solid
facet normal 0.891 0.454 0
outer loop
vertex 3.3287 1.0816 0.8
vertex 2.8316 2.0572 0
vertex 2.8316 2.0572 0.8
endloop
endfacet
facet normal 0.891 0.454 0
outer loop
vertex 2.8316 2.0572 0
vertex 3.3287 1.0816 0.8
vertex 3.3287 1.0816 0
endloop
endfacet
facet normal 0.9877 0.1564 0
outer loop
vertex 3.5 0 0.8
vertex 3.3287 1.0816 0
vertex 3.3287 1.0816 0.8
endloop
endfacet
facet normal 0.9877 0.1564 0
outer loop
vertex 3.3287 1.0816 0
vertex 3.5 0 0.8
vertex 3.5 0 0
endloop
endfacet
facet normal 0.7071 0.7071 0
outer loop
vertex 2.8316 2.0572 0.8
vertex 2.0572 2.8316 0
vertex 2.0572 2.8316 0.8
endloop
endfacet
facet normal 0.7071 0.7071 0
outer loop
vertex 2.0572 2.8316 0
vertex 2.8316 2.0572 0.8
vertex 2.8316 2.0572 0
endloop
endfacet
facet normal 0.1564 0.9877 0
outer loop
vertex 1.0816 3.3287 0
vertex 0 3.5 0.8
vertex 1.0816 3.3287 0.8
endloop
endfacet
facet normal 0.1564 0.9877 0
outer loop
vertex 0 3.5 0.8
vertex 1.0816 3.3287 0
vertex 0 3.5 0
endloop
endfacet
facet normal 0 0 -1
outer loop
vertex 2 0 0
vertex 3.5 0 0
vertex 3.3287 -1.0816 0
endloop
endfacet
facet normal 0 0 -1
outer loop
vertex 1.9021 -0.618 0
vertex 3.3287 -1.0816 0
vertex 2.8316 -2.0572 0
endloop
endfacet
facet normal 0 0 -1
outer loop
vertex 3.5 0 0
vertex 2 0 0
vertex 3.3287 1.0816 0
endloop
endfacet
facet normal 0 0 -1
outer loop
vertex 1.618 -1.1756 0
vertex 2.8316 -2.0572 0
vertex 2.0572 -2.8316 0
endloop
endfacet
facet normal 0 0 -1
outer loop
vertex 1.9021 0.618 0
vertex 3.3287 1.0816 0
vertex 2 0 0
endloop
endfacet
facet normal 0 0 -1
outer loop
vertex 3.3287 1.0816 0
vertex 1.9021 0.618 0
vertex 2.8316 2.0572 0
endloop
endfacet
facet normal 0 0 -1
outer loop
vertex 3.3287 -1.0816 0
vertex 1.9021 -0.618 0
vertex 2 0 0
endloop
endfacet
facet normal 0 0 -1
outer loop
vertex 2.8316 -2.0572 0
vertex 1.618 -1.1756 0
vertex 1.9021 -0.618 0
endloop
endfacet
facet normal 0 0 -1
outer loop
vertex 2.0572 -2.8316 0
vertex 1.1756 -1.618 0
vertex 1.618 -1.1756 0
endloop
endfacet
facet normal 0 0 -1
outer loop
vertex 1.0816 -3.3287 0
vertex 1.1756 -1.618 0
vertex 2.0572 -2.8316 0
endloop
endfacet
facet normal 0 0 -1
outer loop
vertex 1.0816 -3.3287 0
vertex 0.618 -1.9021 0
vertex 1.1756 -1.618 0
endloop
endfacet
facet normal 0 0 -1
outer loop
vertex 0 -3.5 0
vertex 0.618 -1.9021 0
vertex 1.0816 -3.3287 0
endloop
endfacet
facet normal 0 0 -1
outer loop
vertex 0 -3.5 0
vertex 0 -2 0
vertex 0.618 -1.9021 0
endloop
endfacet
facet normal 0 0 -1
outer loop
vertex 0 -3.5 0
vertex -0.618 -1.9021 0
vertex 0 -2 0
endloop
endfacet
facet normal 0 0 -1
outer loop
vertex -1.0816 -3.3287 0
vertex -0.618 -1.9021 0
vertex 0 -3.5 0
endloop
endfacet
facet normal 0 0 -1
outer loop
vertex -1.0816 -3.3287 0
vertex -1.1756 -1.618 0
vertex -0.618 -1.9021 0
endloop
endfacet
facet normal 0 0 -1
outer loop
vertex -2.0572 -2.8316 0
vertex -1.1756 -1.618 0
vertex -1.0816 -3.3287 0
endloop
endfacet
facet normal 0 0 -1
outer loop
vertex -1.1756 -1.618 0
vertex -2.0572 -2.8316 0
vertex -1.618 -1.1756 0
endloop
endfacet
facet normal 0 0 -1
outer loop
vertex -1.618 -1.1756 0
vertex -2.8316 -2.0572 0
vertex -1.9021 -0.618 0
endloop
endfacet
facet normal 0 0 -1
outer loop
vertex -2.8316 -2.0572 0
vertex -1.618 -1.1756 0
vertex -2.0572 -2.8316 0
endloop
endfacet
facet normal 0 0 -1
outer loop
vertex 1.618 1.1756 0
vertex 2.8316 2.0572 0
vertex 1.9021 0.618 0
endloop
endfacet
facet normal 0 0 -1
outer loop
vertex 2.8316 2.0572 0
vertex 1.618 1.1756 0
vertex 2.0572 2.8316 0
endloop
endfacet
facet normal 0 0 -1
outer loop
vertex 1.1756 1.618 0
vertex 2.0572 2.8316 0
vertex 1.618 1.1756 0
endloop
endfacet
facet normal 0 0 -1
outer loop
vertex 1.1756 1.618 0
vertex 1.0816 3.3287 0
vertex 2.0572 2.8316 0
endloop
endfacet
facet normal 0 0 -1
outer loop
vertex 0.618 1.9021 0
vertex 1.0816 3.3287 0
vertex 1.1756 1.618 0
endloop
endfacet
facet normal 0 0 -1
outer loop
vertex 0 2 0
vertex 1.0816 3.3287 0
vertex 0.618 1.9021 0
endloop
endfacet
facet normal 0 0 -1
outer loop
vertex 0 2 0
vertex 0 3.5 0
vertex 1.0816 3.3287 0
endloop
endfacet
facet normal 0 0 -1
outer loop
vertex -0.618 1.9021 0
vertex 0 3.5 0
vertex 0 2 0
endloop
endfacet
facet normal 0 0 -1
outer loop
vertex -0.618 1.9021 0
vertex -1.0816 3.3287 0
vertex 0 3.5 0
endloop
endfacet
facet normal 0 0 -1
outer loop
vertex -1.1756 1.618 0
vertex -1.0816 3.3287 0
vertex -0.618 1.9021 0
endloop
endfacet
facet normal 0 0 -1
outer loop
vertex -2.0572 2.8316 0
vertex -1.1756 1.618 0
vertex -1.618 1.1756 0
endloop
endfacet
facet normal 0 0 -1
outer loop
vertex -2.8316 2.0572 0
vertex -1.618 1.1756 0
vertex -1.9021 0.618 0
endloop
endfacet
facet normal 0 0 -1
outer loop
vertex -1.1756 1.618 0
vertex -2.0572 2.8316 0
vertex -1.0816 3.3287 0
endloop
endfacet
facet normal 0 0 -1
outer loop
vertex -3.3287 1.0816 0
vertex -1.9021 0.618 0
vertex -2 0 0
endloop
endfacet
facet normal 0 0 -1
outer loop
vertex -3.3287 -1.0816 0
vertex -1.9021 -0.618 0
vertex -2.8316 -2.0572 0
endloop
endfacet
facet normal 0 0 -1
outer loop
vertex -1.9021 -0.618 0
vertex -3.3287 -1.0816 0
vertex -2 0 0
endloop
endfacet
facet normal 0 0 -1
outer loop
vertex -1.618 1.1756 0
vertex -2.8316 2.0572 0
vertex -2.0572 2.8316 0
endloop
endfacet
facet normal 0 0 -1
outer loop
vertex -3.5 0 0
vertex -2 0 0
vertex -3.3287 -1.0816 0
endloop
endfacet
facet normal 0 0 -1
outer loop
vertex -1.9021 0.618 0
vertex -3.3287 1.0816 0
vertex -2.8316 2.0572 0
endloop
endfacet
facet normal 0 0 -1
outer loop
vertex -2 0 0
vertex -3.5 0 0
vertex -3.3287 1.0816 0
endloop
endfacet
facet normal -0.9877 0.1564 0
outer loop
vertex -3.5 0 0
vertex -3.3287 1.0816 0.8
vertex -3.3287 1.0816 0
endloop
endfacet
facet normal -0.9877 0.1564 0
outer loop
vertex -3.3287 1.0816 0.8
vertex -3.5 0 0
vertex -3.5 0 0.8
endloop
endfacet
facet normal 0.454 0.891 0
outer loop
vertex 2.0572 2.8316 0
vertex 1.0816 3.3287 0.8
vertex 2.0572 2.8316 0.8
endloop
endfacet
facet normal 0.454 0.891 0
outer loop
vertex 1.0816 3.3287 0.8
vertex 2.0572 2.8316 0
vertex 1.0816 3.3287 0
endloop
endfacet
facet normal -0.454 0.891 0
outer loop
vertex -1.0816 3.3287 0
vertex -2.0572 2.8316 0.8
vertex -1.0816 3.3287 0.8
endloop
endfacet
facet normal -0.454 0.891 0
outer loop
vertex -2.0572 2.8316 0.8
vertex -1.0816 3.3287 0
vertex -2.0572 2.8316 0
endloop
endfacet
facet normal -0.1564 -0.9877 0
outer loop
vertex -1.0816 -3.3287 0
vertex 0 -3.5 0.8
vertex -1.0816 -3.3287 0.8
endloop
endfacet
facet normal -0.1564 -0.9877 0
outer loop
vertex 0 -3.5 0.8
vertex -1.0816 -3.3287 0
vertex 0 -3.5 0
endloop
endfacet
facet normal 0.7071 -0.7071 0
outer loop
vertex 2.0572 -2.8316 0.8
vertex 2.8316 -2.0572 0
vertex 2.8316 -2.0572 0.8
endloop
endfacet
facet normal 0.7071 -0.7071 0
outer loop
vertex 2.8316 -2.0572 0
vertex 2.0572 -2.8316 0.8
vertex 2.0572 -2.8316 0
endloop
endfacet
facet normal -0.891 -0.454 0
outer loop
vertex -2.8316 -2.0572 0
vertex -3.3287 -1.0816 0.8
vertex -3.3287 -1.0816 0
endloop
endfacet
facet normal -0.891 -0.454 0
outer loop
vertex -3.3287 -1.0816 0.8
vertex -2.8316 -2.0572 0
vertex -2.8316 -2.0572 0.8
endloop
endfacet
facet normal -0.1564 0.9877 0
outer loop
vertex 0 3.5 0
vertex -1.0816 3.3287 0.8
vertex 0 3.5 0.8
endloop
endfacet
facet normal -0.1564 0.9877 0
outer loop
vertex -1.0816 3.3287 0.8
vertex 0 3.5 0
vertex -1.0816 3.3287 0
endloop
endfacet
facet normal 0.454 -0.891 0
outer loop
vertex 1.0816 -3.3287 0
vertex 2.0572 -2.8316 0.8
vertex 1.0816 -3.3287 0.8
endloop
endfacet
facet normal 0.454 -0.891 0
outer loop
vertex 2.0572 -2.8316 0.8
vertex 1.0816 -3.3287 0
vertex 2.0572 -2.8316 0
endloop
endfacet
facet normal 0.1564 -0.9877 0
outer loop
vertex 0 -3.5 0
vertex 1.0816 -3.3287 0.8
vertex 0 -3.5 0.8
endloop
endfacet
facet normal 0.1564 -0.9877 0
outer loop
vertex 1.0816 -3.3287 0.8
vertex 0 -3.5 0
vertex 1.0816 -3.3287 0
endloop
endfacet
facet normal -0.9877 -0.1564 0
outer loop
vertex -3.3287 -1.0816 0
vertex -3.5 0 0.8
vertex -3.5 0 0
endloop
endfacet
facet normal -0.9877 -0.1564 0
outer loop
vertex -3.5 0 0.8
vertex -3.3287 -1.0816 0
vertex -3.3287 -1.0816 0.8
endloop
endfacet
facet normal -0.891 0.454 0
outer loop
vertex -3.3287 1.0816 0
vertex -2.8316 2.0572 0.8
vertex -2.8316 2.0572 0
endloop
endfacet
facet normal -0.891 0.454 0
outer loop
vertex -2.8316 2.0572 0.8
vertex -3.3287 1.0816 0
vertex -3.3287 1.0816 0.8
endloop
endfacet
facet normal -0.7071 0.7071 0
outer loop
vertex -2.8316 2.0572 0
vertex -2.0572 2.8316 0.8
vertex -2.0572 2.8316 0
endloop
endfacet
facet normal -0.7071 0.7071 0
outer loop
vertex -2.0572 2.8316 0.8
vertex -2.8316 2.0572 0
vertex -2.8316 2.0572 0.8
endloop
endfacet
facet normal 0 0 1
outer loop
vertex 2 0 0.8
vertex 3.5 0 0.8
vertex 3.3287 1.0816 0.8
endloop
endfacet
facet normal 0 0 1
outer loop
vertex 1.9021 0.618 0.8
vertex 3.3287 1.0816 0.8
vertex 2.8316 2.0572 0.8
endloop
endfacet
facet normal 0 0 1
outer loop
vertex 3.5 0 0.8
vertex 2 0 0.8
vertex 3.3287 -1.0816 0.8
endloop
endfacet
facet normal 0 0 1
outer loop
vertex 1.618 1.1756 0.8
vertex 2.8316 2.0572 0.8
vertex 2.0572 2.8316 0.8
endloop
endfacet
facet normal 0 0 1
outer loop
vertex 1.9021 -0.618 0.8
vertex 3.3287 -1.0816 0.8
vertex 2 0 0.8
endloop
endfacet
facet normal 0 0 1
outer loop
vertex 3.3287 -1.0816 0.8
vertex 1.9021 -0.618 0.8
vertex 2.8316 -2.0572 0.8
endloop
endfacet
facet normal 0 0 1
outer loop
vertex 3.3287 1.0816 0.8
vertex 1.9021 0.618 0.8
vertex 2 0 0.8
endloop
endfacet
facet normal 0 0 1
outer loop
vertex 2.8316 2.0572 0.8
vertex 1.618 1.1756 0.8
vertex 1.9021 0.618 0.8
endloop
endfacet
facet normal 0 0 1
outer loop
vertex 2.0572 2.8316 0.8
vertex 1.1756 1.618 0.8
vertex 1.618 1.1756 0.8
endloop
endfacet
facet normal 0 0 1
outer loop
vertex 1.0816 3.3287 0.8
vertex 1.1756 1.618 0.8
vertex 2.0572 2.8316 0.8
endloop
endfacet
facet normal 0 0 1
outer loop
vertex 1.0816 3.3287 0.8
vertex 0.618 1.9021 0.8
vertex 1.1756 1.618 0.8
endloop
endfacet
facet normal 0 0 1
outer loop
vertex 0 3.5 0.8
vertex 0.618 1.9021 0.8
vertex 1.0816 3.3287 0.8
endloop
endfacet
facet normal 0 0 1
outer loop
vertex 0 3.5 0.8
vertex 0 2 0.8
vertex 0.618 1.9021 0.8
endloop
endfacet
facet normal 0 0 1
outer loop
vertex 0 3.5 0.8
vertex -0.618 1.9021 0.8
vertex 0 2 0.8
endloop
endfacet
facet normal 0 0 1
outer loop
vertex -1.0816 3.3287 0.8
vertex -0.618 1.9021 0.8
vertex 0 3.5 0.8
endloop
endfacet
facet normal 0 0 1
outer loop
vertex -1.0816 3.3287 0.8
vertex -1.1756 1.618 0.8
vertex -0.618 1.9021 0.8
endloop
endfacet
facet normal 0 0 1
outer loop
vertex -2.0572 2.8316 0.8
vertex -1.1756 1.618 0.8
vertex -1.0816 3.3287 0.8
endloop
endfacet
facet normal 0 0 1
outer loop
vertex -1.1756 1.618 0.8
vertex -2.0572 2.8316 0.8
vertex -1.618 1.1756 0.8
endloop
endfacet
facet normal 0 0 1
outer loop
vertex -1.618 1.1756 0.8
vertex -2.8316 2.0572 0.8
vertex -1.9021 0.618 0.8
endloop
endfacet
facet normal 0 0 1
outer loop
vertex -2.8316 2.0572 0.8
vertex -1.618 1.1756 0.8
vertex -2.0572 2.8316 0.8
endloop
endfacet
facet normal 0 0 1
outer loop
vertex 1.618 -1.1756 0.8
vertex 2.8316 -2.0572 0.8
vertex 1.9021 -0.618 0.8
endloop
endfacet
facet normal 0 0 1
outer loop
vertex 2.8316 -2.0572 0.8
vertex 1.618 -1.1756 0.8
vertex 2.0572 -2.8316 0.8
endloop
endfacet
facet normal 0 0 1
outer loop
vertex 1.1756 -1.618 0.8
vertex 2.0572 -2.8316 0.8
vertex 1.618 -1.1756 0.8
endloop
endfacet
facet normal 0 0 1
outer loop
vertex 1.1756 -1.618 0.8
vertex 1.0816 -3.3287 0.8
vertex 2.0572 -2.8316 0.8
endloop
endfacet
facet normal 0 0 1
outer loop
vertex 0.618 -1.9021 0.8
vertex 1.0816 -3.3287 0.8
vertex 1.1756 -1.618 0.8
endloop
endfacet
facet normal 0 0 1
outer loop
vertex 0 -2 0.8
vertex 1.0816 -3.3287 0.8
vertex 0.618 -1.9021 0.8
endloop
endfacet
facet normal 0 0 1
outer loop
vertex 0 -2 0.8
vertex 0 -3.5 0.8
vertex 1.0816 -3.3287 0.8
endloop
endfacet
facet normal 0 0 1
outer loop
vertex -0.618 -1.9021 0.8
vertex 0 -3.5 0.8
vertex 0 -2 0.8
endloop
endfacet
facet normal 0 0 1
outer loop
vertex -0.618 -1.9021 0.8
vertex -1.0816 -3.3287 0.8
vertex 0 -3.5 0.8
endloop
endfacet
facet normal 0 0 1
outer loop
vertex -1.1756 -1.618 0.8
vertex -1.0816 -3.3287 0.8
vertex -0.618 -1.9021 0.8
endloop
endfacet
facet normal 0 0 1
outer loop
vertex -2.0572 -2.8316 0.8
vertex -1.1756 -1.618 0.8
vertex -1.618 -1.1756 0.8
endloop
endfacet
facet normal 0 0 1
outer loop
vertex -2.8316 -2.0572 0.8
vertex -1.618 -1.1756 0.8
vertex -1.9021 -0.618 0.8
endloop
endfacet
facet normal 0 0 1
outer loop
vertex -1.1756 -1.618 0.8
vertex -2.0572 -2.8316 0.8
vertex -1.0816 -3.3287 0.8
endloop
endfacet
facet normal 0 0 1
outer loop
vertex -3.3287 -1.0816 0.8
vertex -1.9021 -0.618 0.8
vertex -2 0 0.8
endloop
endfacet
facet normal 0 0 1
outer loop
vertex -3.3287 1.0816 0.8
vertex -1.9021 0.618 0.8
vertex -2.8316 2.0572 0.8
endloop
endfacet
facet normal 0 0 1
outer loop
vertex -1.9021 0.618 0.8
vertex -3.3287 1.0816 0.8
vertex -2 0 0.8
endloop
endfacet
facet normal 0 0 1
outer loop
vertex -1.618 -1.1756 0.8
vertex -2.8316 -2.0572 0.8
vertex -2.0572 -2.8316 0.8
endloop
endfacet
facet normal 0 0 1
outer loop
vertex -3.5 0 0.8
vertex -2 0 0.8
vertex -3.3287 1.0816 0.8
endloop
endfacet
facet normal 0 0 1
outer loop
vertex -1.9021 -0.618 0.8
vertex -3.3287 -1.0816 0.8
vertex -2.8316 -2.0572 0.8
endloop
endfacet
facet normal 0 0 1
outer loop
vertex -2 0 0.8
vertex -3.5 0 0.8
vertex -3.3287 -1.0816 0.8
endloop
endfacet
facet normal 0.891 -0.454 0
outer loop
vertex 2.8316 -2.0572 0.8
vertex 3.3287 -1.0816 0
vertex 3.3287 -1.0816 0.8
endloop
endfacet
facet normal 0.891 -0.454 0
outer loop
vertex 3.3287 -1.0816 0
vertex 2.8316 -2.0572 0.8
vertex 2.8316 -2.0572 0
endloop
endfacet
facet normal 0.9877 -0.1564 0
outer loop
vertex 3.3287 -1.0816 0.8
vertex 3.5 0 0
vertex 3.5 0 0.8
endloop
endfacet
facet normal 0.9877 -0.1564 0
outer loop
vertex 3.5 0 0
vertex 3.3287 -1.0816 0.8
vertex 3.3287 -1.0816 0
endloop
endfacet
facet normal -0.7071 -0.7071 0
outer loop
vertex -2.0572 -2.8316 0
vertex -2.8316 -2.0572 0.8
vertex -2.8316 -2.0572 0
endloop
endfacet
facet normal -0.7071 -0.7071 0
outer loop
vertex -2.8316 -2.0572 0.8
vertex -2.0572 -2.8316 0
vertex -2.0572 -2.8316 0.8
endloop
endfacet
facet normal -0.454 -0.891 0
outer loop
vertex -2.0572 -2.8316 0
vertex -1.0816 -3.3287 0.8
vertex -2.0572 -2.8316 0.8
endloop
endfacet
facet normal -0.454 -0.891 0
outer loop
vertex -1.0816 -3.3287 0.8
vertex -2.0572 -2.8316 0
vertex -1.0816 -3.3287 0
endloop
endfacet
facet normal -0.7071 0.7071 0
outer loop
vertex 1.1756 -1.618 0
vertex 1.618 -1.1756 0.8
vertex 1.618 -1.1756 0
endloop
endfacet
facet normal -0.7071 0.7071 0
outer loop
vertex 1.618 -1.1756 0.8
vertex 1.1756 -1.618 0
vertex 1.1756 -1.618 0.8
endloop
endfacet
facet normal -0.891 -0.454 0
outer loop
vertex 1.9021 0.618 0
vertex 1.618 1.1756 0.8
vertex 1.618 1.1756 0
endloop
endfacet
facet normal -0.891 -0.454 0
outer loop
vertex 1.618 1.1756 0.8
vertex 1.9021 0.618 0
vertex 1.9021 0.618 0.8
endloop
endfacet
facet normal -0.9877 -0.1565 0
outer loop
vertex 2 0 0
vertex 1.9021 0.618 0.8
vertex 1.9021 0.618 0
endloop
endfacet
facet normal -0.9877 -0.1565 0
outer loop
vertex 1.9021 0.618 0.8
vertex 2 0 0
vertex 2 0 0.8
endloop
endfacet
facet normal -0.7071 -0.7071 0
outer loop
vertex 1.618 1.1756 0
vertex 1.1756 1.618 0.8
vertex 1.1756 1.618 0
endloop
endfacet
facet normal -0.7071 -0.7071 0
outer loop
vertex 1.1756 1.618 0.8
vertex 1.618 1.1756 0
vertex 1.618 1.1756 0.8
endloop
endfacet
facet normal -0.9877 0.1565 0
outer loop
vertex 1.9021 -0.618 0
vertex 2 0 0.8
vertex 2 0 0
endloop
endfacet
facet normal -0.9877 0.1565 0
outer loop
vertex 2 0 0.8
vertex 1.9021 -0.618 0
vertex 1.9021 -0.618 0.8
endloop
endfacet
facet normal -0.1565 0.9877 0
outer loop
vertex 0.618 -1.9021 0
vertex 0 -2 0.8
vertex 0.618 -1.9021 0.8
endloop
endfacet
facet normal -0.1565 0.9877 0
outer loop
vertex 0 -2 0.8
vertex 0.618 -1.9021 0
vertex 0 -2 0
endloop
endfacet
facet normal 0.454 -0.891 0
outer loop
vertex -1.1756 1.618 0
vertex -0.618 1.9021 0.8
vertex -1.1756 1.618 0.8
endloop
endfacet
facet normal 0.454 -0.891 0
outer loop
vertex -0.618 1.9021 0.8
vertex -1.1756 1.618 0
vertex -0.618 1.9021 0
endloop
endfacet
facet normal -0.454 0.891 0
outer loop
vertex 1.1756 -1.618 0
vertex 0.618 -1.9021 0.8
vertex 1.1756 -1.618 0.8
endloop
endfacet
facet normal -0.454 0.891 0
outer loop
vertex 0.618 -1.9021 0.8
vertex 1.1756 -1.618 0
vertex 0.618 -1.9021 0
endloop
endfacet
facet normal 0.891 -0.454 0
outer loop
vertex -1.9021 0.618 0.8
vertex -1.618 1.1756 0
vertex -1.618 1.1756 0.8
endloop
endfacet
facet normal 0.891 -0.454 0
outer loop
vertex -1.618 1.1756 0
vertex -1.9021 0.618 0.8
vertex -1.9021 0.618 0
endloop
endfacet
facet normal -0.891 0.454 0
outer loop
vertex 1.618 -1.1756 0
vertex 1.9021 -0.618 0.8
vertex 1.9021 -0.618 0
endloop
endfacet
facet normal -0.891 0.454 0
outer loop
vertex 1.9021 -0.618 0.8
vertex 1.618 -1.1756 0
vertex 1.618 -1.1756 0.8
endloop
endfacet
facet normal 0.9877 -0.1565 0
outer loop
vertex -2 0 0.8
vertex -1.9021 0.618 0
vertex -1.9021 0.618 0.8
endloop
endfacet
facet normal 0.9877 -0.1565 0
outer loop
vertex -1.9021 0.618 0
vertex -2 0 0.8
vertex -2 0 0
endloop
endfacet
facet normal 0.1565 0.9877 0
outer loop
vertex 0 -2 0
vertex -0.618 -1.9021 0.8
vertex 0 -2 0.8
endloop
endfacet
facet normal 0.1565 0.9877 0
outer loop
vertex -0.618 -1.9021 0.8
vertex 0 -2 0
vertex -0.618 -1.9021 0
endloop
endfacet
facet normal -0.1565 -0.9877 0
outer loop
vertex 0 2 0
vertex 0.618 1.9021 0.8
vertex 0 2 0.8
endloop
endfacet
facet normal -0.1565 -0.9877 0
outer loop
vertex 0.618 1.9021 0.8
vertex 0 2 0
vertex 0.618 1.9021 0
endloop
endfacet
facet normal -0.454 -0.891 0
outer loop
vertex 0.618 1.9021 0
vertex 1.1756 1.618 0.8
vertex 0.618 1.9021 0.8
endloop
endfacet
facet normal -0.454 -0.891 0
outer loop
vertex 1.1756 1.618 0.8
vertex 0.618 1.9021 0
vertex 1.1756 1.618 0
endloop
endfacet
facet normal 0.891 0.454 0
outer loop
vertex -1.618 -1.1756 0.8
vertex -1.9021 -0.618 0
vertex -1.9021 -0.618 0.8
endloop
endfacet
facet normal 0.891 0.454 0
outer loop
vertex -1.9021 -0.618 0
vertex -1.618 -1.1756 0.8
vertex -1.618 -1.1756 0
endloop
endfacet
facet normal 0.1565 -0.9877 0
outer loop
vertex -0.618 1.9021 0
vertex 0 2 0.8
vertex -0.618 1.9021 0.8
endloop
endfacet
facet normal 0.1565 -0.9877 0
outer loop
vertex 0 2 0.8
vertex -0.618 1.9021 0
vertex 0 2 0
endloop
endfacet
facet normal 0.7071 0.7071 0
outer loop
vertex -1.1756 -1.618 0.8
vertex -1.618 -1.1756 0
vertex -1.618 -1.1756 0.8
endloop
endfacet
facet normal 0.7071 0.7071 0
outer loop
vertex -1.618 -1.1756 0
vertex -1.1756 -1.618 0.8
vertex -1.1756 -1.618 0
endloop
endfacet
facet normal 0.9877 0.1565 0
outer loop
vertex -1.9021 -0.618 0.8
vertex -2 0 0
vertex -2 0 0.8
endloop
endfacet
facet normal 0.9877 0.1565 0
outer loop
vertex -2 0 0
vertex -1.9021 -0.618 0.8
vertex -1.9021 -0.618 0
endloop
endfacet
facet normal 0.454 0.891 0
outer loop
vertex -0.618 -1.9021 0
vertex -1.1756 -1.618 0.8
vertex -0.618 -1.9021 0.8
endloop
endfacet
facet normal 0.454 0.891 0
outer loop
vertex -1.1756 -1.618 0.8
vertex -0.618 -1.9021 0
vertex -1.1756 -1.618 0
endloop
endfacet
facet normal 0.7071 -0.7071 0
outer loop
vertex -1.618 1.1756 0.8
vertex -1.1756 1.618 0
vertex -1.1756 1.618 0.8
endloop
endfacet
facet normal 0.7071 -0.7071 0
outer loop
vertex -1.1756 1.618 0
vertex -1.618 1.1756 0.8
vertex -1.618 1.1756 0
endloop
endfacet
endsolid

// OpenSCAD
difference(){
cylinder(d=7,h=.8,$fn=20);
cylinder(d=4,h=1.2,$fn=20);
}
